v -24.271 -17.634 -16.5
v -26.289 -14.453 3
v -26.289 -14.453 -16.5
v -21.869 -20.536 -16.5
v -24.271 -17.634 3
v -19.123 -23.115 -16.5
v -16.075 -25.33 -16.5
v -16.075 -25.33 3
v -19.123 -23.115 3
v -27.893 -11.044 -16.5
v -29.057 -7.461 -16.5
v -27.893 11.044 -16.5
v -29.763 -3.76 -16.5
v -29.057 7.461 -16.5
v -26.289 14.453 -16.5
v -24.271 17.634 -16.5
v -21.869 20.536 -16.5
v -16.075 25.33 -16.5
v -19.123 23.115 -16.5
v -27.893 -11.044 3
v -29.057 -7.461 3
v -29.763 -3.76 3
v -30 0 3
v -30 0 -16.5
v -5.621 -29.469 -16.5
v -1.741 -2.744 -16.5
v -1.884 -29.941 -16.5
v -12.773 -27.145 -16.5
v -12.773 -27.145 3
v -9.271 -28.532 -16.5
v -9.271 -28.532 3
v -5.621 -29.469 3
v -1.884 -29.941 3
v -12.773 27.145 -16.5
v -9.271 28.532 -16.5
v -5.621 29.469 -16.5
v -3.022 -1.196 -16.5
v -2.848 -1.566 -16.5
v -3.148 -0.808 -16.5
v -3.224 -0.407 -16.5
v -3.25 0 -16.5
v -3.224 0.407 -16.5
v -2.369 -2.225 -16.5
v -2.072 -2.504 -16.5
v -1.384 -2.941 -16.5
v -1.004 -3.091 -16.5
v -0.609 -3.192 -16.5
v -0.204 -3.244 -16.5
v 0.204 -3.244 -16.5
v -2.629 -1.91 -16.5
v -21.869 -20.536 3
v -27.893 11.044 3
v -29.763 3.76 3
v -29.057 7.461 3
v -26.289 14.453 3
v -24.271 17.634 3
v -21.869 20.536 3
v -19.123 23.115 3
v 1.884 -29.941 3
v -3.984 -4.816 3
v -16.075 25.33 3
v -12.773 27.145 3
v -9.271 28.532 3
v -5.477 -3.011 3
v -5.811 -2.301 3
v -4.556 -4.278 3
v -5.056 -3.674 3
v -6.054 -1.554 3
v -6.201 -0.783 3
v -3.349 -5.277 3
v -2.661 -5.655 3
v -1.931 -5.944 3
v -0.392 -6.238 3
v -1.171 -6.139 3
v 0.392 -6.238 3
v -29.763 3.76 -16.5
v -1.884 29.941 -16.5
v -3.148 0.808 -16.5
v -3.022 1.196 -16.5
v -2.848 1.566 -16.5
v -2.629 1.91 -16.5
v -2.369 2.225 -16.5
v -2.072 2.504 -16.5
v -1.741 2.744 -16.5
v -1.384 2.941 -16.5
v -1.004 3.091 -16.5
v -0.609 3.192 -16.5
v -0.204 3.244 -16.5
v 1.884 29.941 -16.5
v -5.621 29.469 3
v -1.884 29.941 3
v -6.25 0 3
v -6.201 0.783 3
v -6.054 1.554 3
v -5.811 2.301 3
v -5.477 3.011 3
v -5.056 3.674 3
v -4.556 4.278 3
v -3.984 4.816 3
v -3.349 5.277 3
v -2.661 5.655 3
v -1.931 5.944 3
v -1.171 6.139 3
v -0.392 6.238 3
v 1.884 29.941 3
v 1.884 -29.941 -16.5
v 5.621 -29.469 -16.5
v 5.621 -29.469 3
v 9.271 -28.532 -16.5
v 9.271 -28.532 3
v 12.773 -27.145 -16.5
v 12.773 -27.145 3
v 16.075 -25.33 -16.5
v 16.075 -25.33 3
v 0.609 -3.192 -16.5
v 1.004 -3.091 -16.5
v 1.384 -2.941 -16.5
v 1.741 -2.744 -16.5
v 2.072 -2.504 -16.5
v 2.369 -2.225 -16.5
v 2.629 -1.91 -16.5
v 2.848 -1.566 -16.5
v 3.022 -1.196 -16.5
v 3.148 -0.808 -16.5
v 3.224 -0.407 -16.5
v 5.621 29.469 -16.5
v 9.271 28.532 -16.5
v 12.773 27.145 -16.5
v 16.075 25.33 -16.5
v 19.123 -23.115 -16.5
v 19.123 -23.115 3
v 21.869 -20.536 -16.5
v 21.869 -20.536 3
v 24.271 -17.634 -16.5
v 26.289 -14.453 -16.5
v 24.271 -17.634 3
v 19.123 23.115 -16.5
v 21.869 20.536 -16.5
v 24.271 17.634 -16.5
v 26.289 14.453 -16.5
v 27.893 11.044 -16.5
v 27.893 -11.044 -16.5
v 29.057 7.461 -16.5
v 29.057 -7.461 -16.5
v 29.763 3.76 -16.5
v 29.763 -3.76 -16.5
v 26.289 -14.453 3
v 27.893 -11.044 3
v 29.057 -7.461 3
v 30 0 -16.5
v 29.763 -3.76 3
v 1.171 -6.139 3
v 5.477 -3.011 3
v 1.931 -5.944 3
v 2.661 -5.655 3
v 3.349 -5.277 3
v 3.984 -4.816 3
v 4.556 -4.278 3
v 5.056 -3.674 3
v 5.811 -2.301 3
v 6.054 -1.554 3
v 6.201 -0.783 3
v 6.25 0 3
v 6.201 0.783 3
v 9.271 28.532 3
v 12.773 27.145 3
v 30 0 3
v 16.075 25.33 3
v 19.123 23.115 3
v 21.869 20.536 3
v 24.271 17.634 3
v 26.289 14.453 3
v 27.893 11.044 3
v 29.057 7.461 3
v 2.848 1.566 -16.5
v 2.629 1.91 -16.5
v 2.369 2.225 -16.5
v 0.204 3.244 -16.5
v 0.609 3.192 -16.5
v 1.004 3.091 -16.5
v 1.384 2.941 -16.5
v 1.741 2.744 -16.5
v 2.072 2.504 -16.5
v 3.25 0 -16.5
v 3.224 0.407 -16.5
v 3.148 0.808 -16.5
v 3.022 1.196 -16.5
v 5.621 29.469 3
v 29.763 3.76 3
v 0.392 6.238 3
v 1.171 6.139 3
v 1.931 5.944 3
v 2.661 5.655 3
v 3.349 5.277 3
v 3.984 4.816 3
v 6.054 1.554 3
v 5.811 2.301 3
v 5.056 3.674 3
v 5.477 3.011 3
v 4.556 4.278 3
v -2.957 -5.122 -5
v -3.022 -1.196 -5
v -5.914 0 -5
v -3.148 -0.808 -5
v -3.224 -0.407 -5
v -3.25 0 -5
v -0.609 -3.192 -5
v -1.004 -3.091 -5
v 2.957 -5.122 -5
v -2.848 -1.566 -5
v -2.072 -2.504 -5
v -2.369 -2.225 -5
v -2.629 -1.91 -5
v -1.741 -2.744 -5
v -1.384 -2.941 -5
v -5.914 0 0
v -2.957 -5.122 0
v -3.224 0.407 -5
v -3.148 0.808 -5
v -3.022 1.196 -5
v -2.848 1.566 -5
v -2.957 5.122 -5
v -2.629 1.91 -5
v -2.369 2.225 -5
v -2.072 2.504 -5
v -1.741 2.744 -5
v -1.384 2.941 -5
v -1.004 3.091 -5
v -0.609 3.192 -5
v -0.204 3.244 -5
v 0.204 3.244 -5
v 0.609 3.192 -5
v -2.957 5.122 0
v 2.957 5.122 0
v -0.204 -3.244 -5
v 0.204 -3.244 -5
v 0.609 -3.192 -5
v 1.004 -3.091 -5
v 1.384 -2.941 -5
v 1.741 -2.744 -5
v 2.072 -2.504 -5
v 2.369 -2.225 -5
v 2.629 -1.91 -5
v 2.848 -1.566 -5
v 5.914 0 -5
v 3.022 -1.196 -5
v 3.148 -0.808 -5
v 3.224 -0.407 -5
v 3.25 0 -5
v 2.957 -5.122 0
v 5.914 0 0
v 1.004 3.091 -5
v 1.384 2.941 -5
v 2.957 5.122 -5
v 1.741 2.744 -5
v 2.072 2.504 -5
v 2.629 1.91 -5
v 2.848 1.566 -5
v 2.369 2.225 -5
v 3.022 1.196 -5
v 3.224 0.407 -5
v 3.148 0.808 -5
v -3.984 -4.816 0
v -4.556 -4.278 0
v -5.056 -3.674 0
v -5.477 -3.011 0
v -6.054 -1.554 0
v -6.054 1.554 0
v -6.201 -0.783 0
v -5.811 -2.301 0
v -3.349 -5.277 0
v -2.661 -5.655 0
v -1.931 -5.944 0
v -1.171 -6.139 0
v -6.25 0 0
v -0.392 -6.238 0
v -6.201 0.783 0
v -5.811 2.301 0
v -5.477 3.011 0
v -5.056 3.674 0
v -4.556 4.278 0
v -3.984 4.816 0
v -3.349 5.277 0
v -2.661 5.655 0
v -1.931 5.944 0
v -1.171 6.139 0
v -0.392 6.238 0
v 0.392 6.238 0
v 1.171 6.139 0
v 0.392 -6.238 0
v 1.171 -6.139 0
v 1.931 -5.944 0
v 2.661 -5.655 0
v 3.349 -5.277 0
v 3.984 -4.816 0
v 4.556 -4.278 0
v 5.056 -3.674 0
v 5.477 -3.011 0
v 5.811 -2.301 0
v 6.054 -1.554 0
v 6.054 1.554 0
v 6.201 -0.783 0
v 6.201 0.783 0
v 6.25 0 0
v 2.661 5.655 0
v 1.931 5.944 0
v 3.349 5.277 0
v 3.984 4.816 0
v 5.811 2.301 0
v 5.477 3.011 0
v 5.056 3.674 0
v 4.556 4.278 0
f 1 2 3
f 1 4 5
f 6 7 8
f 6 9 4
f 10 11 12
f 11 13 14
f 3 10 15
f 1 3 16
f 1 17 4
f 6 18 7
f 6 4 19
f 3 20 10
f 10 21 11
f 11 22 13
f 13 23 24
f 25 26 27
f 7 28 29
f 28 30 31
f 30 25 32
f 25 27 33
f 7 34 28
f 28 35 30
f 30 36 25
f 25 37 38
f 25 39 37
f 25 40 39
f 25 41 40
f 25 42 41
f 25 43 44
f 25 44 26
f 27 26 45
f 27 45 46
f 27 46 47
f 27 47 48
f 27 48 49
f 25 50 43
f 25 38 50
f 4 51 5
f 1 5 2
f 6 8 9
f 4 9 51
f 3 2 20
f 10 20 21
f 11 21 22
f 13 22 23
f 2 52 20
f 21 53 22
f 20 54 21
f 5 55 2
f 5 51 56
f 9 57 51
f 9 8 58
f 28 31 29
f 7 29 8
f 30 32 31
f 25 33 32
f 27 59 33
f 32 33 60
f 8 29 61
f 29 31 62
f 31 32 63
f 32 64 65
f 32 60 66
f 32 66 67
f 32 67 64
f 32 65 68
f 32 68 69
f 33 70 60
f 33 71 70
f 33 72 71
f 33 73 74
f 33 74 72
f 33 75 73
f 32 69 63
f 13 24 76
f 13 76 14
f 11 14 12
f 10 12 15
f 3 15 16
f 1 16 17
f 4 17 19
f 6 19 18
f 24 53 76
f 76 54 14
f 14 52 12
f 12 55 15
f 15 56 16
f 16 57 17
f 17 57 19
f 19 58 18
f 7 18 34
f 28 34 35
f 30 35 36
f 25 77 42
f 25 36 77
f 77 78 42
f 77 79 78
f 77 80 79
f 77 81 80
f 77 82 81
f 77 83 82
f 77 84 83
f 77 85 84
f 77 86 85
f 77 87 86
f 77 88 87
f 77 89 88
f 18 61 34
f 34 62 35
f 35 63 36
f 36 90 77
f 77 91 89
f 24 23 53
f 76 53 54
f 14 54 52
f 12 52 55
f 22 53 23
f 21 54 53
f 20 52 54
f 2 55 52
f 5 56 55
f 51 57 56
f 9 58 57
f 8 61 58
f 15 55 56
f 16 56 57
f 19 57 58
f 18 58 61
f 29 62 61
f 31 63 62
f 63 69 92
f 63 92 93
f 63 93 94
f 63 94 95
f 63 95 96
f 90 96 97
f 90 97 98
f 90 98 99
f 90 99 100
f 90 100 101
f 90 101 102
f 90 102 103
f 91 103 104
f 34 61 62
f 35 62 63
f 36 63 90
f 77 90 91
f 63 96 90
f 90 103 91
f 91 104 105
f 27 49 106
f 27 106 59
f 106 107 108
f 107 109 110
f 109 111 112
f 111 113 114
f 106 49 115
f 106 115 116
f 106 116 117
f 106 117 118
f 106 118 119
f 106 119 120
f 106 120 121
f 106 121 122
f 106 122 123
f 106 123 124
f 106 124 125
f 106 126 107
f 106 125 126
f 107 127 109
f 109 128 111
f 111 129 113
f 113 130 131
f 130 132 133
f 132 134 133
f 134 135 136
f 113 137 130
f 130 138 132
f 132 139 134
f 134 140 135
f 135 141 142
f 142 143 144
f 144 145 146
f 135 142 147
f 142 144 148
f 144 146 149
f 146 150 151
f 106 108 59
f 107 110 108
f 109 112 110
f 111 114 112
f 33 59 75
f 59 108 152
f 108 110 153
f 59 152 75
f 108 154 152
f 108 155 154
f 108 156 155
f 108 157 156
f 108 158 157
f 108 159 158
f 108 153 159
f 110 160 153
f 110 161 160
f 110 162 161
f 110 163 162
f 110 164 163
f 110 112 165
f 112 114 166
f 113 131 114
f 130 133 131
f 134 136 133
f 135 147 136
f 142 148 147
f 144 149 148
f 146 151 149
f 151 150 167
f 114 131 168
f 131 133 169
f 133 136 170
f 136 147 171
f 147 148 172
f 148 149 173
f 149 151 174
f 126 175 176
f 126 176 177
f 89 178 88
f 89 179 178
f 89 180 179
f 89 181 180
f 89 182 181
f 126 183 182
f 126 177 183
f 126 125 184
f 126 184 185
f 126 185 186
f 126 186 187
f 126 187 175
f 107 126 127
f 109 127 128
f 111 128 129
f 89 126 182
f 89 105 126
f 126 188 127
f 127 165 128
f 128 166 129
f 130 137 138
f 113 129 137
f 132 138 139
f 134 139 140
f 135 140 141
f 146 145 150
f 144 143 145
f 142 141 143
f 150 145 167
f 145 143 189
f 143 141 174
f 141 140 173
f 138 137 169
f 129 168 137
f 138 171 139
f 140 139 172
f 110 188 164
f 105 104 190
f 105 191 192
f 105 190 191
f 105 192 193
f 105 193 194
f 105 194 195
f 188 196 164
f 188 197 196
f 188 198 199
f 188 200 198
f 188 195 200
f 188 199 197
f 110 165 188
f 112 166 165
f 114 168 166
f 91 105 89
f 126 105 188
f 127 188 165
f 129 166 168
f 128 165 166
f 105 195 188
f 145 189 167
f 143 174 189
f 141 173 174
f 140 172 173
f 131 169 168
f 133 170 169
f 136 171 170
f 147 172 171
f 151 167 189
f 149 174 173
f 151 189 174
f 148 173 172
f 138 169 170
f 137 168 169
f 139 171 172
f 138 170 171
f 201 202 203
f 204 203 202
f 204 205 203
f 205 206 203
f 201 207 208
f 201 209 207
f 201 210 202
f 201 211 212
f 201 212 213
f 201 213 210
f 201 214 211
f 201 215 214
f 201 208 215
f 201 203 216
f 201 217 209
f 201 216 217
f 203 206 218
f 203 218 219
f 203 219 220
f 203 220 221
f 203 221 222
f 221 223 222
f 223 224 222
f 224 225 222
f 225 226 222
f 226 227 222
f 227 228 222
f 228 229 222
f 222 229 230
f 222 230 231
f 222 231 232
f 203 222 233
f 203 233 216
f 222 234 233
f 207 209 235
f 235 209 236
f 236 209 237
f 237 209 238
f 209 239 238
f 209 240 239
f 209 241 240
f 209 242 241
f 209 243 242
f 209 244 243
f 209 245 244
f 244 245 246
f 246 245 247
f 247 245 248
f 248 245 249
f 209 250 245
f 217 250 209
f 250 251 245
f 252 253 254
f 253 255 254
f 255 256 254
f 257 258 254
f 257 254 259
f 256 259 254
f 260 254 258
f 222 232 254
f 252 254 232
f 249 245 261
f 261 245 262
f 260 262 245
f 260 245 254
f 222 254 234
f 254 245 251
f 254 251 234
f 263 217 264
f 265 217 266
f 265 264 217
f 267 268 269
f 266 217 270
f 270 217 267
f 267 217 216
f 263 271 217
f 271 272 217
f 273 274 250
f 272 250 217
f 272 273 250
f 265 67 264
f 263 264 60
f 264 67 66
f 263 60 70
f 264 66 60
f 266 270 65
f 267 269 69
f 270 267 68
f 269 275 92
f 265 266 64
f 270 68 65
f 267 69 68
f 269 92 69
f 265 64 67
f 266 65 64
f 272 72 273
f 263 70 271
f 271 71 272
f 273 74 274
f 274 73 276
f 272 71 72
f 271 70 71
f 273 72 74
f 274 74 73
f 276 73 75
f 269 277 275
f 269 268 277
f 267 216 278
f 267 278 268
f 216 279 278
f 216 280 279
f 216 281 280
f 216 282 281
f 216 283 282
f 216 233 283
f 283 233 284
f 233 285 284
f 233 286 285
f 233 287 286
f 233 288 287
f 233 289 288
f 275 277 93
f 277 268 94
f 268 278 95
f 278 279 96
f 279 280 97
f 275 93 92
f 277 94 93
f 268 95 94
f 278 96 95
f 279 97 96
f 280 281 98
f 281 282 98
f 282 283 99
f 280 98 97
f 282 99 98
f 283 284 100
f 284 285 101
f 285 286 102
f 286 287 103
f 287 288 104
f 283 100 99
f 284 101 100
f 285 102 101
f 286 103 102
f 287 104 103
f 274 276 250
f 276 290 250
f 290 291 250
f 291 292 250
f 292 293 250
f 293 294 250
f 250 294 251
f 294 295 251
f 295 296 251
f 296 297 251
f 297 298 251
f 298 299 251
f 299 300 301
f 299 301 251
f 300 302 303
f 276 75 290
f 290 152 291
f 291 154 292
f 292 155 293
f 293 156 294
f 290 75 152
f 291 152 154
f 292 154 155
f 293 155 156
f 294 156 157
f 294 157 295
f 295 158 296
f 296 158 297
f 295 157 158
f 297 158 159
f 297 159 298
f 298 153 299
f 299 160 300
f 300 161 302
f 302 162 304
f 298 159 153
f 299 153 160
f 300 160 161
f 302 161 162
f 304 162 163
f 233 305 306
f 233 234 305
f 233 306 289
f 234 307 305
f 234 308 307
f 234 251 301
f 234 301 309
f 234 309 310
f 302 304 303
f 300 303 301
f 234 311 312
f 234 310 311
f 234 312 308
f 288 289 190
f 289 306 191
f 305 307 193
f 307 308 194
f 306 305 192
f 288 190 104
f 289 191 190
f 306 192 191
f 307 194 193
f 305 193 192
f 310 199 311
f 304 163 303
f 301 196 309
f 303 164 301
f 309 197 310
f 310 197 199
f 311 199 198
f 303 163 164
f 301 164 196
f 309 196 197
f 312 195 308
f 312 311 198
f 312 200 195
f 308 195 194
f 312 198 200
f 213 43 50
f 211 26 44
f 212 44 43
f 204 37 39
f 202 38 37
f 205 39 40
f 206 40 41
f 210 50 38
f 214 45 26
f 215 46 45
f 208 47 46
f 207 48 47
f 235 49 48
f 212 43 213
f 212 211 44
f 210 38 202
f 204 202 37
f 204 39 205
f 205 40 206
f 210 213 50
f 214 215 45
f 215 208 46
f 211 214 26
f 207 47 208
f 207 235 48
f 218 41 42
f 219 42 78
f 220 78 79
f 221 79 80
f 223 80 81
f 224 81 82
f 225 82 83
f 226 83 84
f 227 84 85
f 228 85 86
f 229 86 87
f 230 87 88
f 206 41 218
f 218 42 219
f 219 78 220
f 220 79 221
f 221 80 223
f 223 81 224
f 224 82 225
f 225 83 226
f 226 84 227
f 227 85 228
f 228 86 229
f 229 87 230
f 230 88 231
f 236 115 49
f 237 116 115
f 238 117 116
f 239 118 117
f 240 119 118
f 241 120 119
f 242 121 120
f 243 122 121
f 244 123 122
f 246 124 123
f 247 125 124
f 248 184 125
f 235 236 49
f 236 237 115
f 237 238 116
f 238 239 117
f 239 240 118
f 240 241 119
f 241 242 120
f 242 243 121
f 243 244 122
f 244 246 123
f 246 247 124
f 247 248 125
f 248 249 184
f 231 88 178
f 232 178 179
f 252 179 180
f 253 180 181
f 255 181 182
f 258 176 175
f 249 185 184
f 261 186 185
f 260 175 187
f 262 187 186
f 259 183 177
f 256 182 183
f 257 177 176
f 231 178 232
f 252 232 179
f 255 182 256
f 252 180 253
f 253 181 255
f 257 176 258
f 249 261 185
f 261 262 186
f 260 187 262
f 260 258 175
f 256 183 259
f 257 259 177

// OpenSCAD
$fn = 50;


difference() {
	union() {
		translate(v = [0, 0, -16.5000000000]) {
			cylinder(h = 19.5000000000, r = 30.0000000000);
		}
		#translate(v = [0, 0, -18.0000000000]) {
			cylinder(h = 18, r = 2.8750000000);
		}
	}
	union() {
		translate(v = [0, 0, 0]) {
			rotate(a = [0, 0, 0]) {
				difference() {
					union() {
						translate(v = [0, 0, -5]) {
							linear_extrude(height = 5) {
								polygon(points = [[5.9142500000, 0.0000000000], [2.9571250000, 5.1218907443], [-2.9571250000, 5.1218907443], [-5.9142500000, 0.0000000000], [-2.9571250000, -5.1218907443], [2.9571250000, -5.1218907443]]);
							}
						}
					}
					union();
				}
			}
		}
		#cylinder(h = 3, r = 6.2500000000);
		#translate(v = [0, 0, -100.0000000000]) {
			cylinder(h = 200, r = 3.2500000000);
		}
	}
}
